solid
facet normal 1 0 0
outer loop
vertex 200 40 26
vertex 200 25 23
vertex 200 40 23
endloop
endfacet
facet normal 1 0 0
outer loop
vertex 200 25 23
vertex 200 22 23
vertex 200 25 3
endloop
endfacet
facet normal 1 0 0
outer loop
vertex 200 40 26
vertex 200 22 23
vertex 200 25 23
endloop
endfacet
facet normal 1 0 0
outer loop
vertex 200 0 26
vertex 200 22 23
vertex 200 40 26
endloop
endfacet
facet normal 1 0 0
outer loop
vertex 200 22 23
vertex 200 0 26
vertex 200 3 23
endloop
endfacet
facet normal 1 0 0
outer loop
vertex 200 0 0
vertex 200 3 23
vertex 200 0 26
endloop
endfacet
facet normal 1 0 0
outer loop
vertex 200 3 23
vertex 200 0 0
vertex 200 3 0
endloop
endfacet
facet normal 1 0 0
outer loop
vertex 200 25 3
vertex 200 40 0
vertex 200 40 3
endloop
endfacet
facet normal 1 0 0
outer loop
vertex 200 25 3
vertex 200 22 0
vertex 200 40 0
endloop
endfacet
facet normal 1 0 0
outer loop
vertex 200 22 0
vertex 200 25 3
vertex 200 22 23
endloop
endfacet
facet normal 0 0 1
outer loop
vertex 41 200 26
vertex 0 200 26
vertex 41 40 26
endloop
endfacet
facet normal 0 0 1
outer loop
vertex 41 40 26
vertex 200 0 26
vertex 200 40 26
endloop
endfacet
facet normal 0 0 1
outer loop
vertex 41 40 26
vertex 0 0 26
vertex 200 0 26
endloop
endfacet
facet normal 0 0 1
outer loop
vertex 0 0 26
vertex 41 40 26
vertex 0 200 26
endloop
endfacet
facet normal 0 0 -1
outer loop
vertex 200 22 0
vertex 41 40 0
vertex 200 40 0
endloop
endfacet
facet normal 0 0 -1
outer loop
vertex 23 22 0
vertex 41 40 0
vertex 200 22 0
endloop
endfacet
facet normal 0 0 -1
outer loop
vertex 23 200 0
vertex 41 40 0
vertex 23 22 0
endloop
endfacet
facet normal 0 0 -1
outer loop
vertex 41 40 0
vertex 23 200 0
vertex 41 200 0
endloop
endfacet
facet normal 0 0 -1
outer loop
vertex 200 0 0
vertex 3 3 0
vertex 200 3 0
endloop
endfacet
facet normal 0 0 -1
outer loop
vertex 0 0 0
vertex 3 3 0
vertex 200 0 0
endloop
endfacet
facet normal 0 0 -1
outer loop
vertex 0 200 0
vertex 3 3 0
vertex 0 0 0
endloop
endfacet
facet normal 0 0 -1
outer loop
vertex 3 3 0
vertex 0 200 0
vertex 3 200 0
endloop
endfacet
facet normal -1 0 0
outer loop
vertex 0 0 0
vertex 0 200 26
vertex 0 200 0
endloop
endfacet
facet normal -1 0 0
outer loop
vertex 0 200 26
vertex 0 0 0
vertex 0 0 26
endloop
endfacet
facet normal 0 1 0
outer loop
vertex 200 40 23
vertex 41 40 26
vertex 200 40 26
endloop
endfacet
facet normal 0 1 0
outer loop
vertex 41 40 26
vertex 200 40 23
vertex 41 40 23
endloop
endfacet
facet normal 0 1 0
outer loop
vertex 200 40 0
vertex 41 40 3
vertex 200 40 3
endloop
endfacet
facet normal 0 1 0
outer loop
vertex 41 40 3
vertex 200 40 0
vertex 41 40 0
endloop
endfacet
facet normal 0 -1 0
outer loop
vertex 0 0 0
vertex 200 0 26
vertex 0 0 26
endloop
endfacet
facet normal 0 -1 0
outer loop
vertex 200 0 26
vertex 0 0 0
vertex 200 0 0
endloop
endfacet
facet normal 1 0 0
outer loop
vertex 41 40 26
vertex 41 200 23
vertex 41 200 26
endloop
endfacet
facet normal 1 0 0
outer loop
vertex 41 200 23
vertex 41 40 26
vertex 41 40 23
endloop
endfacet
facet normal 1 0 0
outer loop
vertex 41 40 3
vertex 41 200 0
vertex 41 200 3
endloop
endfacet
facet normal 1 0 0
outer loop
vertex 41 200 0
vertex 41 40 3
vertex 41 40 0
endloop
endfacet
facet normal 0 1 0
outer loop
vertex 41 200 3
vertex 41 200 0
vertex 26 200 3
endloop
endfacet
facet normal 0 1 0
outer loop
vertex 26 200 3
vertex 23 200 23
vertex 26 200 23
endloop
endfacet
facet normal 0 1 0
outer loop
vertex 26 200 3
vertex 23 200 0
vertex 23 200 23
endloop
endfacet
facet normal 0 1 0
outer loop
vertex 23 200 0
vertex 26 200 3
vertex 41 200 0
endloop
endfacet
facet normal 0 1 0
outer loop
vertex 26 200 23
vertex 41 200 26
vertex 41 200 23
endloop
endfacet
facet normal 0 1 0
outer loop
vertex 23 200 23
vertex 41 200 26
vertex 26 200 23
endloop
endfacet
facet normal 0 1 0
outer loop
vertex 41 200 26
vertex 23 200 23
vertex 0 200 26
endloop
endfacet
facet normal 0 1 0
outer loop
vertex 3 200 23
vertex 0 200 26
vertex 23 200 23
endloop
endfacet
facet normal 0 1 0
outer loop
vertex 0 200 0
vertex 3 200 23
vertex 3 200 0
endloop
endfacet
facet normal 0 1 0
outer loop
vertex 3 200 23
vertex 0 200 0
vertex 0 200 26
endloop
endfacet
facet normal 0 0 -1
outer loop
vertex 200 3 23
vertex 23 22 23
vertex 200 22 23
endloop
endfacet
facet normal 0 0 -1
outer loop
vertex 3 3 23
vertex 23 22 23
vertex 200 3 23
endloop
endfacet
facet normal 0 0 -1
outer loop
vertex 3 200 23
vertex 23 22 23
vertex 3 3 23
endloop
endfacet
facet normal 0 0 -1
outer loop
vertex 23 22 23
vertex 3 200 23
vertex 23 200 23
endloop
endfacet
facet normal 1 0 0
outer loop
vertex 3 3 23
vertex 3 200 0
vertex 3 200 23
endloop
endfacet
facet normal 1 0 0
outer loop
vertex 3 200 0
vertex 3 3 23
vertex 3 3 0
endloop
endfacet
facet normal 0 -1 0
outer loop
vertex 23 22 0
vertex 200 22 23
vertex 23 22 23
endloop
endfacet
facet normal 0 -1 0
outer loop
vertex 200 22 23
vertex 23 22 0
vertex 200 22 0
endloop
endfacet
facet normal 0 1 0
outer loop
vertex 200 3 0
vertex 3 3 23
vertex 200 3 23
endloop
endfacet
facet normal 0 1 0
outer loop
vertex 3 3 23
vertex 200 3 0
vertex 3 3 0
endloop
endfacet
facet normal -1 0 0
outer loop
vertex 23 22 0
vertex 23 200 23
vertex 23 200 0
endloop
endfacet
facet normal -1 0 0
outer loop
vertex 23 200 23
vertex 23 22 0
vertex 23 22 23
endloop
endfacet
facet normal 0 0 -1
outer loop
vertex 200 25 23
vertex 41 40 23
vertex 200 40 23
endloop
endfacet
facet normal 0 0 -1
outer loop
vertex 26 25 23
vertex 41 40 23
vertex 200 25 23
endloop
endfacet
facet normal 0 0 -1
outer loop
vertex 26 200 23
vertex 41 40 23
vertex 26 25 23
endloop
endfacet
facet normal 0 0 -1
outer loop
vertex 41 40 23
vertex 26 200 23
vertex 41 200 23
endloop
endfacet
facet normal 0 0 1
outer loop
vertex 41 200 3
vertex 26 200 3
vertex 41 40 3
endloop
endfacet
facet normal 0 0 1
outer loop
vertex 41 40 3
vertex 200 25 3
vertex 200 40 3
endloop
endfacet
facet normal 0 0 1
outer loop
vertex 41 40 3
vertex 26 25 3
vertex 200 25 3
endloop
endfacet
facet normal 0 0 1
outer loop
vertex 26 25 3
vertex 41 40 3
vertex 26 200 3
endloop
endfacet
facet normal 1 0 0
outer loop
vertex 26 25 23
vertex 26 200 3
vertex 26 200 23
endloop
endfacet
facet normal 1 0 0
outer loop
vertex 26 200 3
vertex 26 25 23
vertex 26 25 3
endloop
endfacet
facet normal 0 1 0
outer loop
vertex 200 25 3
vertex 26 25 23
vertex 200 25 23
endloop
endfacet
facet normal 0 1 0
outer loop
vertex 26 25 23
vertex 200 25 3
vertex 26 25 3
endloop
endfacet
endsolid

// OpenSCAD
// medidas referencia

// Ancho madera lateral 19mm
lateral_width = 19;
// Ancho madera trasera 20mm
back_width = 20;
// Profundidad protuberancia 24mm (max)
height = 23;

// Cobertura para caida exterior e interior
cover_depth = 3;

// Largo brazos deseado
arm_length = 200;

// tamaño alerón para tapar leds
flap_depth = 15;

difference() {
    // L formada por los dos brazos (para insertar en el mueble y el flap donde se insertará la tira de leds)
    union() {
        // Brazo lateral + flap lateral
        cube([arm_length, lateral_width + (cover_depth * 2) + flap_depth, height + cover_depth]);
        // Brazo trasero + flap trasero
        cube([back_width + (cover_depth * 2) + flap_depth, arm_length, height + cover_depth]);
    }
    // Interior brazo lateral
    translate([cover_depth, cover_depth, -1]) cube([arm_length + 1, lateral_width, height + 1]);
    // Interior brazo trasero
    translate([cover_depth, cover_depth, -1]) cube([back_width, arm_length, height + 1]);
    // Interior flap lateral
    // Aquí la gran duda es si la led strip cabe en la altura deseada (dada la altura de la mesa). Debería haber una altura mínima dada por el ancho de la tira de leds.
    translate([back_width + (cover_depth * 2), lateral_width + (cover_depth * 2), cover_depth]) cube([arm_length, flap_depth + 0.1, height - cover_depth]);
    translate([back_width + (cover_depth * 2), lateral_width + (cover_depth * 2), cover_depth]) cube([flap_depth + 0.1, arm_length, height - cover_depth]);
    
}
